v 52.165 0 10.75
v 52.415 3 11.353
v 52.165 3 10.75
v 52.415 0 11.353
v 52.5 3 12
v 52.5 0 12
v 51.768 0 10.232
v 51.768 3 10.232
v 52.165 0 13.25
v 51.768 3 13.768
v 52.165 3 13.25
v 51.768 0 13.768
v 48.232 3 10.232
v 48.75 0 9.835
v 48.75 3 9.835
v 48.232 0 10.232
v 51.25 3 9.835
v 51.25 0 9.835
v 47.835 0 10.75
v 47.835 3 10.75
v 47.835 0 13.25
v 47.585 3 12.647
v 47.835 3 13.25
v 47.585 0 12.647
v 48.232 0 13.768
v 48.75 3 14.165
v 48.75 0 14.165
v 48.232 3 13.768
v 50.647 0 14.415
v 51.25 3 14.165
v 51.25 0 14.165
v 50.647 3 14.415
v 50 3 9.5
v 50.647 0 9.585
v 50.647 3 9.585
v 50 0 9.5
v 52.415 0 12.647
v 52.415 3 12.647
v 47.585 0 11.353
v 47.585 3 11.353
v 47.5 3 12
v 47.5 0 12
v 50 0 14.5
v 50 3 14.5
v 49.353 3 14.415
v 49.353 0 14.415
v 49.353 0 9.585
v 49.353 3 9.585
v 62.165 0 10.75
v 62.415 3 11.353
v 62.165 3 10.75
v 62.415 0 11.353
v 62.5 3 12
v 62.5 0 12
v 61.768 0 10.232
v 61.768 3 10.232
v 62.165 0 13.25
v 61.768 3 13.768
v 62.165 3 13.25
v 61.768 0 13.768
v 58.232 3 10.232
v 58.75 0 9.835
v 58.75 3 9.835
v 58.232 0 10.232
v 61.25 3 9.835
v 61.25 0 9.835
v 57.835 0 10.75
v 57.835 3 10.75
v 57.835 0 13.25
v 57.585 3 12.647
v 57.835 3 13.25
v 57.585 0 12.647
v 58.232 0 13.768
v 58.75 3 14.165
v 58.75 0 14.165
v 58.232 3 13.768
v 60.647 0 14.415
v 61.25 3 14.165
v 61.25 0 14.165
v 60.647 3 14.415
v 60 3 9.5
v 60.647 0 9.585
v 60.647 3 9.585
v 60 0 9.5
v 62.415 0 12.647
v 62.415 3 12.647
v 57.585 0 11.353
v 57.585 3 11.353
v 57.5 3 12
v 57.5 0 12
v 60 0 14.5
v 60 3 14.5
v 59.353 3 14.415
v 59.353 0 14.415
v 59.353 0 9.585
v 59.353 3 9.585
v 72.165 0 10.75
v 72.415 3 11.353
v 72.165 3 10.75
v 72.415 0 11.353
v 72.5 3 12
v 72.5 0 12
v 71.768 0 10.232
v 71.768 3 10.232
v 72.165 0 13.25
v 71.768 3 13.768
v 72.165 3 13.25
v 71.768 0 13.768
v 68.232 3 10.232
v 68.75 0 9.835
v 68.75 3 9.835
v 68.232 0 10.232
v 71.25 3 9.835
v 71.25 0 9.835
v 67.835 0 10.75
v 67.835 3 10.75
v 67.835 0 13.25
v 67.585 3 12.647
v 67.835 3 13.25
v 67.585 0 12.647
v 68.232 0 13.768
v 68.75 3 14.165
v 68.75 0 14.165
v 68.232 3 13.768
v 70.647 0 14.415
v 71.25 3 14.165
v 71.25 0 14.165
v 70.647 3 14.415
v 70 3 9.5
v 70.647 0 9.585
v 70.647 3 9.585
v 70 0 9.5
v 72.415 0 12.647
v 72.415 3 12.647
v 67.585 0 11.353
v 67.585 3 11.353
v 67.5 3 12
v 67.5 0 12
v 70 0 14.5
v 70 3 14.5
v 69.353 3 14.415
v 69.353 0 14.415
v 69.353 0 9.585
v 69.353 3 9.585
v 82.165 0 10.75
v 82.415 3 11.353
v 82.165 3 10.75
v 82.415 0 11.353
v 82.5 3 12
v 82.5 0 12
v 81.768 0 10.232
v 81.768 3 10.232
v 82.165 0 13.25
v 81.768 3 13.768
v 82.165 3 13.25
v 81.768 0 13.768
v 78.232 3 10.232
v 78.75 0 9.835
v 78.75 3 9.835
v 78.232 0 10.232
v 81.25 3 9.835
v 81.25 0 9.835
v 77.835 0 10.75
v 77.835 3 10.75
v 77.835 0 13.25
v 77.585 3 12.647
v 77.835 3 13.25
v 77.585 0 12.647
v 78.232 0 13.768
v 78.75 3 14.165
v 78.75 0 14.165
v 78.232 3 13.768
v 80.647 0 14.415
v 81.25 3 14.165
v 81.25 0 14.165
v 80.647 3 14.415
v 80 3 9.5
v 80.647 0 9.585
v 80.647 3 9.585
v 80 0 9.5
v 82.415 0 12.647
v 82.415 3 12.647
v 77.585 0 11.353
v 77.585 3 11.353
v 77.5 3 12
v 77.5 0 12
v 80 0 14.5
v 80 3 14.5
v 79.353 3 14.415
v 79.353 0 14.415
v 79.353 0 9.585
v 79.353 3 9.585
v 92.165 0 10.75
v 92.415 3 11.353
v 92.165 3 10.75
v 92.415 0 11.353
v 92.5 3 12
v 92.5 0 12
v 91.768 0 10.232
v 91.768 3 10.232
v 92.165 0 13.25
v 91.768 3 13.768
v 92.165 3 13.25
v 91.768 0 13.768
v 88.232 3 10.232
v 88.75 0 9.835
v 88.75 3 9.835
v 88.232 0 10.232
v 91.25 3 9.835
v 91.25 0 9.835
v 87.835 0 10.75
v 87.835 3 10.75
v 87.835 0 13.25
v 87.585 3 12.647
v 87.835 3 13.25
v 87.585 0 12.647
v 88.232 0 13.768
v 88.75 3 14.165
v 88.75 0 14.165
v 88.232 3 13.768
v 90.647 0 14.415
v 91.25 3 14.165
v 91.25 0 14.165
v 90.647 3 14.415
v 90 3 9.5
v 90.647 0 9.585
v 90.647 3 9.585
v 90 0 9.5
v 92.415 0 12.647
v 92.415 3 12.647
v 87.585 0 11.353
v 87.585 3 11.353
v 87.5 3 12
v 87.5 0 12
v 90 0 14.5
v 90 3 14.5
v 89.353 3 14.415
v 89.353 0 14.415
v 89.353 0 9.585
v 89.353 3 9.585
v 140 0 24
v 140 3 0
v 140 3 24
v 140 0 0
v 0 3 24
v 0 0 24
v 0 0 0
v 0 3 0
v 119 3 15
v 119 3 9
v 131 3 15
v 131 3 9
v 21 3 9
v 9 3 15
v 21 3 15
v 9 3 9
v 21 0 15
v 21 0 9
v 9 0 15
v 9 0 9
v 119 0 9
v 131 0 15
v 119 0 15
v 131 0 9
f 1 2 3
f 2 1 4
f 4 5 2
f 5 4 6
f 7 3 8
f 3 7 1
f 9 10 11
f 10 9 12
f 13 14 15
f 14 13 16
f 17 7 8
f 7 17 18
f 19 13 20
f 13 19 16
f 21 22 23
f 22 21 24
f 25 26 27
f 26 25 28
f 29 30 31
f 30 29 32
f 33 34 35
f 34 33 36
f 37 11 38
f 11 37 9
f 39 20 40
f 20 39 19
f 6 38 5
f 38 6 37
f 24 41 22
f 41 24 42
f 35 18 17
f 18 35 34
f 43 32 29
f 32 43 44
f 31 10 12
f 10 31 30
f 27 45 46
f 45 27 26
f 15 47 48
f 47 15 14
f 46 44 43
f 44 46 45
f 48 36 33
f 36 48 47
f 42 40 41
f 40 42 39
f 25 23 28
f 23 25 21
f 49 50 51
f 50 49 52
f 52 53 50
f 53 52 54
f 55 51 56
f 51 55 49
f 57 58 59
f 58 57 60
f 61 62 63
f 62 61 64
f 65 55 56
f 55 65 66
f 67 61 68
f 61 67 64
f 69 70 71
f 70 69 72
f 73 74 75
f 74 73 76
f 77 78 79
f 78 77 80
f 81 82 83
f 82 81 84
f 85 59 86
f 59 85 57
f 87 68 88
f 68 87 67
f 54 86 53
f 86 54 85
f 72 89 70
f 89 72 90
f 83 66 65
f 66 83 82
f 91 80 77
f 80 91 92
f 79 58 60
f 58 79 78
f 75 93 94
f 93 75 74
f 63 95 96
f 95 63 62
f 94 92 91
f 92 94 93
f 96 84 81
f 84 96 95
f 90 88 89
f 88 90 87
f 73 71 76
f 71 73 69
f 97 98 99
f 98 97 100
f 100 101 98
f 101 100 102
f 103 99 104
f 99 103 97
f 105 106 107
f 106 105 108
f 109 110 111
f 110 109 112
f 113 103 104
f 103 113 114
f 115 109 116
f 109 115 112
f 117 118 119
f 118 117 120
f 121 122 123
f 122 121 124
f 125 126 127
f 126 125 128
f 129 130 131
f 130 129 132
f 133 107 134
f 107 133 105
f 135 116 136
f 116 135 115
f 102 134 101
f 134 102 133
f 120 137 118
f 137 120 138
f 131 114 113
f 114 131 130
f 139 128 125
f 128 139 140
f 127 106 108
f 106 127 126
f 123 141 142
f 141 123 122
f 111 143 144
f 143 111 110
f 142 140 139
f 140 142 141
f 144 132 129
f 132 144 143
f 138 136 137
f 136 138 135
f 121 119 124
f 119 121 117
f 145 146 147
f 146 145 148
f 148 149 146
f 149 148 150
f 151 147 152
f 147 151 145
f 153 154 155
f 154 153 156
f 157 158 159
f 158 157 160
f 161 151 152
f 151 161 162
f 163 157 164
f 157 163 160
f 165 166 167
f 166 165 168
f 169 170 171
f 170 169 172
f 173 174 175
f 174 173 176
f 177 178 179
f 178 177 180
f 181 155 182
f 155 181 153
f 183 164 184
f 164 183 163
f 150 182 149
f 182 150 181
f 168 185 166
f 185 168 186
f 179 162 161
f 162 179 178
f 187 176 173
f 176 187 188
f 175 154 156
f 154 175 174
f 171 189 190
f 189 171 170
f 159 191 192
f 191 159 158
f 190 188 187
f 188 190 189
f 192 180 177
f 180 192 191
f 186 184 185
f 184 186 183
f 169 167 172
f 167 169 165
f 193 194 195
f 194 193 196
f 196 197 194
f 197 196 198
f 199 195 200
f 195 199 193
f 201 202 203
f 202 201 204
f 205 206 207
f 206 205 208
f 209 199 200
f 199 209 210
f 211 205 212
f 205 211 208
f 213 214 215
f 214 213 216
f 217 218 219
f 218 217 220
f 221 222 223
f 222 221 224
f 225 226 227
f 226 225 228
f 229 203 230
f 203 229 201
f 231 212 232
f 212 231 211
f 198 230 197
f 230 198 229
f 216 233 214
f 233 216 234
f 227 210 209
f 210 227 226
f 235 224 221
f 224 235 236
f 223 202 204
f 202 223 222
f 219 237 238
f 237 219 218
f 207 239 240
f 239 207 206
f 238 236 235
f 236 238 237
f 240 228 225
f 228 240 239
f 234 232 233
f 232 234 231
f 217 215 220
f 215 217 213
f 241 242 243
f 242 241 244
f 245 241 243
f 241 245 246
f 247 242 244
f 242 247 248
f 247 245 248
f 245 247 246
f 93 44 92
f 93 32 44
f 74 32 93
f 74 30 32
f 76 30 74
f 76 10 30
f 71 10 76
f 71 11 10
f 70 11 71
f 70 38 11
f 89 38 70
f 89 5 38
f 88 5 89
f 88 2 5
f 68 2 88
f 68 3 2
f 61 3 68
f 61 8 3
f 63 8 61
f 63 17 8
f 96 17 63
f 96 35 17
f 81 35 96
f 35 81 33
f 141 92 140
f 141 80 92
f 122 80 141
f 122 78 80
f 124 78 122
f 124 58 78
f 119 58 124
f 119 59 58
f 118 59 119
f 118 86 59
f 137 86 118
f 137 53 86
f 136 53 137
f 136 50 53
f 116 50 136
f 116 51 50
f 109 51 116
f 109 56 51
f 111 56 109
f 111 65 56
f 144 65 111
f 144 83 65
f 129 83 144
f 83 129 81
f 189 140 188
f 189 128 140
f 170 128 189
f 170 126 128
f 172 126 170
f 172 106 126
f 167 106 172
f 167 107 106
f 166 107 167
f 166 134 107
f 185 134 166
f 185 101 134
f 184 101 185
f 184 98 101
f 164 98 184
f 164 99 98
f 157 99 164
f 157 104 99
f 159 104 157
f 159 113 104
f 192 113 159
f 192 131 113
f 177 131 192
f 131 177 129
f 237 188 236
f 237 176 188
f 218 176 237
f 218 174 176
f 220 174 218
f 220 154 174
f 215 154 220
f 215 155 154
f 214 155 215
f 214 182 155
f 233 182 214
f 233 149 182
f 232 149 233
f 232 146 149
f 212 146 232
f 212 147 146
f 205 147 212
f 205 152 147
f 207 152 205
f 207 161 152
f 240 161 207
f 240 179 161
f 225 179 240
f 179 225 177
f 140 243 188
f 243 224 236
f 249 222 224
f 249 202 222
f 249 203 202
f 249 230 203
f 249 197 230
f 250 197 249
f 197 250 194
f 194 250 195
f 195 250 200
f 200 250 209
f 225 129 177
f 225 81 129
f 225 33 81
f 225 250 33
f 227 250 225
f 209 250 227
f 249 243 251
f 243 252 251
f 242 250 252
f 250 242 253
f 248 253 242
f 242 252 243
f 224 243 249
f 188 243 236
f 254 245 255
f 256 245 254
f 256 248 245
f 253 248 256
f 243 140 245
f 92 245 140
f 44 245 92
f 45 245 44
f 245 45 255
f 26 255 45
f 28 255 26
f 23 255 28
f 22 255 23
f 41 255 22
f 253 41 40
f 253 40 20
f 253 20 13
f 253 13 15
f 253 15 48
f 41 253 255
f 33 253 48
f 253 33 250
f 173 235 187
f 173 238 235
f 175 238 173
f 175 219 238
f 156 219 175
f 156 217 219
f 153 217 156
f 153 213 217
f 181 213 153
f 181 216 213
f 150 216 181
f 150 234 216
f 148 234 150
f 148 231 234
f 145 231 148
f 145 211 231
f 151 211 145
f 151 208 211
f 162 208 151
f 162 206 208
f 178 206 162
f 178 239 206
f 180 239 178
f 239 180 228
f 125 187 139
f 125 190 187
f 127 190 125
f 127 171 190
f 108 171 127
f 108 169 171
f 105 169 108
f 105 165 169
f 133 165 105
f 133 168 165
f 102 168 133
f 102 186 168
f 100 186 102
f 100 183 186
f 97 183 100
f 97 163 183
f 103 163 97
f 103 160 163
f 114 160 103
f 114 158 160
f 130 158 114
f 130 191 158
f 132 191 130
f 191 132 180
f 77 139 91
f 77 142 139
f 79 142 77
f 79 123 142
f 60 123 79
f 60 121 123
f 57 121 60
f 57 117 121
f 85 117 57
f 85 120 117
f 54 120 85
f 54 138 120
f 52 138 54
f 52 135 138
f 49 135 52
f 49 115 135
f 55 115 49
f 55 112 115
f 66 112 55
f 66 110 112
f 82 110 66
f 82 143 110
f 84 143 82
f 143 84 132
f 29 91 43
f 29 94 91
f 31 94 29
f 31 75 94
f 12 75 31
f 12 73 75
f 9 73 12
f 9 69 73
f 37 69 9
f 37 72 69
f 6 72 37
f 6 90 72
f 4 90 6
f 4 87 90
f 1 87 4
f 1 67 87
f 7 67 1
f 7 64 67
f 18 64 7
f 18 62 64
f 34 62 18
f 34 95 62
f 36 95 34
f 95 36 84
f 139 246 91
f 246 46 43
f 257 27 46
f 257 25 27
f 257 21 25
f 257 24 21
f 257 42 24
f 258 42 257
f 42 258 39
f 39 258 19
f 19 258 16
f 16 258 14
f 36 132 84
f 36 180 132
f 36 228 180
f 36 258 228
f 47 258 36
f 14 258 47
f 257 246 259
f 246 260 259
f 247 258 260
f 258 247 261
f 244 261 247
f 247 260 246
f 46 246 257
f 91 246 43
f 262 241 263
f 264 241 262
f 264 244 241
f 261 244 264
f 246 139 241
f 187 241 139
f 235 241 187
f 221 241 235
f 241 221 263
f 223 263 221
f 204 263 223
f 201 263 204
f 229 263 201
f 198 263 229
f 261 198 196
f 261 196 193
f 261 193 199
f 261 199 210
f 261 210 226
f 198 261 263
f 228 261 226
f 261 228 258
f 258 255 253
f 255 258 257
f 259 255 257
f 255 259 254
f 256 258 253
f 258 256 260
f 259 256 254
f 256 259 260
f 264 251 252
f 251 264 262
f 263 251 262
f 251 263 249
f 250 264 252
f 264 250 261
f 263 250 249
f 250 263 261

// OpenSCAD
// Nameplate 140x3x24 (Y thickness 3). Two 12x6 slots near ends, five d5 vents.
difference() {
  cube([140,3,24]);
  translate([9,-1,9])  cube([12,5,6]);   // slot L (center x=15,z=12)
  translate([119,-1,9]) cube([12,5,6]);  // slot R (center x=125,z=12)
  for (x=[50,60,70,80,90]) translate([x,-1,12]) rotate([-90,0,0]) cylinder(d=5,h=5,$fn=24);
}
